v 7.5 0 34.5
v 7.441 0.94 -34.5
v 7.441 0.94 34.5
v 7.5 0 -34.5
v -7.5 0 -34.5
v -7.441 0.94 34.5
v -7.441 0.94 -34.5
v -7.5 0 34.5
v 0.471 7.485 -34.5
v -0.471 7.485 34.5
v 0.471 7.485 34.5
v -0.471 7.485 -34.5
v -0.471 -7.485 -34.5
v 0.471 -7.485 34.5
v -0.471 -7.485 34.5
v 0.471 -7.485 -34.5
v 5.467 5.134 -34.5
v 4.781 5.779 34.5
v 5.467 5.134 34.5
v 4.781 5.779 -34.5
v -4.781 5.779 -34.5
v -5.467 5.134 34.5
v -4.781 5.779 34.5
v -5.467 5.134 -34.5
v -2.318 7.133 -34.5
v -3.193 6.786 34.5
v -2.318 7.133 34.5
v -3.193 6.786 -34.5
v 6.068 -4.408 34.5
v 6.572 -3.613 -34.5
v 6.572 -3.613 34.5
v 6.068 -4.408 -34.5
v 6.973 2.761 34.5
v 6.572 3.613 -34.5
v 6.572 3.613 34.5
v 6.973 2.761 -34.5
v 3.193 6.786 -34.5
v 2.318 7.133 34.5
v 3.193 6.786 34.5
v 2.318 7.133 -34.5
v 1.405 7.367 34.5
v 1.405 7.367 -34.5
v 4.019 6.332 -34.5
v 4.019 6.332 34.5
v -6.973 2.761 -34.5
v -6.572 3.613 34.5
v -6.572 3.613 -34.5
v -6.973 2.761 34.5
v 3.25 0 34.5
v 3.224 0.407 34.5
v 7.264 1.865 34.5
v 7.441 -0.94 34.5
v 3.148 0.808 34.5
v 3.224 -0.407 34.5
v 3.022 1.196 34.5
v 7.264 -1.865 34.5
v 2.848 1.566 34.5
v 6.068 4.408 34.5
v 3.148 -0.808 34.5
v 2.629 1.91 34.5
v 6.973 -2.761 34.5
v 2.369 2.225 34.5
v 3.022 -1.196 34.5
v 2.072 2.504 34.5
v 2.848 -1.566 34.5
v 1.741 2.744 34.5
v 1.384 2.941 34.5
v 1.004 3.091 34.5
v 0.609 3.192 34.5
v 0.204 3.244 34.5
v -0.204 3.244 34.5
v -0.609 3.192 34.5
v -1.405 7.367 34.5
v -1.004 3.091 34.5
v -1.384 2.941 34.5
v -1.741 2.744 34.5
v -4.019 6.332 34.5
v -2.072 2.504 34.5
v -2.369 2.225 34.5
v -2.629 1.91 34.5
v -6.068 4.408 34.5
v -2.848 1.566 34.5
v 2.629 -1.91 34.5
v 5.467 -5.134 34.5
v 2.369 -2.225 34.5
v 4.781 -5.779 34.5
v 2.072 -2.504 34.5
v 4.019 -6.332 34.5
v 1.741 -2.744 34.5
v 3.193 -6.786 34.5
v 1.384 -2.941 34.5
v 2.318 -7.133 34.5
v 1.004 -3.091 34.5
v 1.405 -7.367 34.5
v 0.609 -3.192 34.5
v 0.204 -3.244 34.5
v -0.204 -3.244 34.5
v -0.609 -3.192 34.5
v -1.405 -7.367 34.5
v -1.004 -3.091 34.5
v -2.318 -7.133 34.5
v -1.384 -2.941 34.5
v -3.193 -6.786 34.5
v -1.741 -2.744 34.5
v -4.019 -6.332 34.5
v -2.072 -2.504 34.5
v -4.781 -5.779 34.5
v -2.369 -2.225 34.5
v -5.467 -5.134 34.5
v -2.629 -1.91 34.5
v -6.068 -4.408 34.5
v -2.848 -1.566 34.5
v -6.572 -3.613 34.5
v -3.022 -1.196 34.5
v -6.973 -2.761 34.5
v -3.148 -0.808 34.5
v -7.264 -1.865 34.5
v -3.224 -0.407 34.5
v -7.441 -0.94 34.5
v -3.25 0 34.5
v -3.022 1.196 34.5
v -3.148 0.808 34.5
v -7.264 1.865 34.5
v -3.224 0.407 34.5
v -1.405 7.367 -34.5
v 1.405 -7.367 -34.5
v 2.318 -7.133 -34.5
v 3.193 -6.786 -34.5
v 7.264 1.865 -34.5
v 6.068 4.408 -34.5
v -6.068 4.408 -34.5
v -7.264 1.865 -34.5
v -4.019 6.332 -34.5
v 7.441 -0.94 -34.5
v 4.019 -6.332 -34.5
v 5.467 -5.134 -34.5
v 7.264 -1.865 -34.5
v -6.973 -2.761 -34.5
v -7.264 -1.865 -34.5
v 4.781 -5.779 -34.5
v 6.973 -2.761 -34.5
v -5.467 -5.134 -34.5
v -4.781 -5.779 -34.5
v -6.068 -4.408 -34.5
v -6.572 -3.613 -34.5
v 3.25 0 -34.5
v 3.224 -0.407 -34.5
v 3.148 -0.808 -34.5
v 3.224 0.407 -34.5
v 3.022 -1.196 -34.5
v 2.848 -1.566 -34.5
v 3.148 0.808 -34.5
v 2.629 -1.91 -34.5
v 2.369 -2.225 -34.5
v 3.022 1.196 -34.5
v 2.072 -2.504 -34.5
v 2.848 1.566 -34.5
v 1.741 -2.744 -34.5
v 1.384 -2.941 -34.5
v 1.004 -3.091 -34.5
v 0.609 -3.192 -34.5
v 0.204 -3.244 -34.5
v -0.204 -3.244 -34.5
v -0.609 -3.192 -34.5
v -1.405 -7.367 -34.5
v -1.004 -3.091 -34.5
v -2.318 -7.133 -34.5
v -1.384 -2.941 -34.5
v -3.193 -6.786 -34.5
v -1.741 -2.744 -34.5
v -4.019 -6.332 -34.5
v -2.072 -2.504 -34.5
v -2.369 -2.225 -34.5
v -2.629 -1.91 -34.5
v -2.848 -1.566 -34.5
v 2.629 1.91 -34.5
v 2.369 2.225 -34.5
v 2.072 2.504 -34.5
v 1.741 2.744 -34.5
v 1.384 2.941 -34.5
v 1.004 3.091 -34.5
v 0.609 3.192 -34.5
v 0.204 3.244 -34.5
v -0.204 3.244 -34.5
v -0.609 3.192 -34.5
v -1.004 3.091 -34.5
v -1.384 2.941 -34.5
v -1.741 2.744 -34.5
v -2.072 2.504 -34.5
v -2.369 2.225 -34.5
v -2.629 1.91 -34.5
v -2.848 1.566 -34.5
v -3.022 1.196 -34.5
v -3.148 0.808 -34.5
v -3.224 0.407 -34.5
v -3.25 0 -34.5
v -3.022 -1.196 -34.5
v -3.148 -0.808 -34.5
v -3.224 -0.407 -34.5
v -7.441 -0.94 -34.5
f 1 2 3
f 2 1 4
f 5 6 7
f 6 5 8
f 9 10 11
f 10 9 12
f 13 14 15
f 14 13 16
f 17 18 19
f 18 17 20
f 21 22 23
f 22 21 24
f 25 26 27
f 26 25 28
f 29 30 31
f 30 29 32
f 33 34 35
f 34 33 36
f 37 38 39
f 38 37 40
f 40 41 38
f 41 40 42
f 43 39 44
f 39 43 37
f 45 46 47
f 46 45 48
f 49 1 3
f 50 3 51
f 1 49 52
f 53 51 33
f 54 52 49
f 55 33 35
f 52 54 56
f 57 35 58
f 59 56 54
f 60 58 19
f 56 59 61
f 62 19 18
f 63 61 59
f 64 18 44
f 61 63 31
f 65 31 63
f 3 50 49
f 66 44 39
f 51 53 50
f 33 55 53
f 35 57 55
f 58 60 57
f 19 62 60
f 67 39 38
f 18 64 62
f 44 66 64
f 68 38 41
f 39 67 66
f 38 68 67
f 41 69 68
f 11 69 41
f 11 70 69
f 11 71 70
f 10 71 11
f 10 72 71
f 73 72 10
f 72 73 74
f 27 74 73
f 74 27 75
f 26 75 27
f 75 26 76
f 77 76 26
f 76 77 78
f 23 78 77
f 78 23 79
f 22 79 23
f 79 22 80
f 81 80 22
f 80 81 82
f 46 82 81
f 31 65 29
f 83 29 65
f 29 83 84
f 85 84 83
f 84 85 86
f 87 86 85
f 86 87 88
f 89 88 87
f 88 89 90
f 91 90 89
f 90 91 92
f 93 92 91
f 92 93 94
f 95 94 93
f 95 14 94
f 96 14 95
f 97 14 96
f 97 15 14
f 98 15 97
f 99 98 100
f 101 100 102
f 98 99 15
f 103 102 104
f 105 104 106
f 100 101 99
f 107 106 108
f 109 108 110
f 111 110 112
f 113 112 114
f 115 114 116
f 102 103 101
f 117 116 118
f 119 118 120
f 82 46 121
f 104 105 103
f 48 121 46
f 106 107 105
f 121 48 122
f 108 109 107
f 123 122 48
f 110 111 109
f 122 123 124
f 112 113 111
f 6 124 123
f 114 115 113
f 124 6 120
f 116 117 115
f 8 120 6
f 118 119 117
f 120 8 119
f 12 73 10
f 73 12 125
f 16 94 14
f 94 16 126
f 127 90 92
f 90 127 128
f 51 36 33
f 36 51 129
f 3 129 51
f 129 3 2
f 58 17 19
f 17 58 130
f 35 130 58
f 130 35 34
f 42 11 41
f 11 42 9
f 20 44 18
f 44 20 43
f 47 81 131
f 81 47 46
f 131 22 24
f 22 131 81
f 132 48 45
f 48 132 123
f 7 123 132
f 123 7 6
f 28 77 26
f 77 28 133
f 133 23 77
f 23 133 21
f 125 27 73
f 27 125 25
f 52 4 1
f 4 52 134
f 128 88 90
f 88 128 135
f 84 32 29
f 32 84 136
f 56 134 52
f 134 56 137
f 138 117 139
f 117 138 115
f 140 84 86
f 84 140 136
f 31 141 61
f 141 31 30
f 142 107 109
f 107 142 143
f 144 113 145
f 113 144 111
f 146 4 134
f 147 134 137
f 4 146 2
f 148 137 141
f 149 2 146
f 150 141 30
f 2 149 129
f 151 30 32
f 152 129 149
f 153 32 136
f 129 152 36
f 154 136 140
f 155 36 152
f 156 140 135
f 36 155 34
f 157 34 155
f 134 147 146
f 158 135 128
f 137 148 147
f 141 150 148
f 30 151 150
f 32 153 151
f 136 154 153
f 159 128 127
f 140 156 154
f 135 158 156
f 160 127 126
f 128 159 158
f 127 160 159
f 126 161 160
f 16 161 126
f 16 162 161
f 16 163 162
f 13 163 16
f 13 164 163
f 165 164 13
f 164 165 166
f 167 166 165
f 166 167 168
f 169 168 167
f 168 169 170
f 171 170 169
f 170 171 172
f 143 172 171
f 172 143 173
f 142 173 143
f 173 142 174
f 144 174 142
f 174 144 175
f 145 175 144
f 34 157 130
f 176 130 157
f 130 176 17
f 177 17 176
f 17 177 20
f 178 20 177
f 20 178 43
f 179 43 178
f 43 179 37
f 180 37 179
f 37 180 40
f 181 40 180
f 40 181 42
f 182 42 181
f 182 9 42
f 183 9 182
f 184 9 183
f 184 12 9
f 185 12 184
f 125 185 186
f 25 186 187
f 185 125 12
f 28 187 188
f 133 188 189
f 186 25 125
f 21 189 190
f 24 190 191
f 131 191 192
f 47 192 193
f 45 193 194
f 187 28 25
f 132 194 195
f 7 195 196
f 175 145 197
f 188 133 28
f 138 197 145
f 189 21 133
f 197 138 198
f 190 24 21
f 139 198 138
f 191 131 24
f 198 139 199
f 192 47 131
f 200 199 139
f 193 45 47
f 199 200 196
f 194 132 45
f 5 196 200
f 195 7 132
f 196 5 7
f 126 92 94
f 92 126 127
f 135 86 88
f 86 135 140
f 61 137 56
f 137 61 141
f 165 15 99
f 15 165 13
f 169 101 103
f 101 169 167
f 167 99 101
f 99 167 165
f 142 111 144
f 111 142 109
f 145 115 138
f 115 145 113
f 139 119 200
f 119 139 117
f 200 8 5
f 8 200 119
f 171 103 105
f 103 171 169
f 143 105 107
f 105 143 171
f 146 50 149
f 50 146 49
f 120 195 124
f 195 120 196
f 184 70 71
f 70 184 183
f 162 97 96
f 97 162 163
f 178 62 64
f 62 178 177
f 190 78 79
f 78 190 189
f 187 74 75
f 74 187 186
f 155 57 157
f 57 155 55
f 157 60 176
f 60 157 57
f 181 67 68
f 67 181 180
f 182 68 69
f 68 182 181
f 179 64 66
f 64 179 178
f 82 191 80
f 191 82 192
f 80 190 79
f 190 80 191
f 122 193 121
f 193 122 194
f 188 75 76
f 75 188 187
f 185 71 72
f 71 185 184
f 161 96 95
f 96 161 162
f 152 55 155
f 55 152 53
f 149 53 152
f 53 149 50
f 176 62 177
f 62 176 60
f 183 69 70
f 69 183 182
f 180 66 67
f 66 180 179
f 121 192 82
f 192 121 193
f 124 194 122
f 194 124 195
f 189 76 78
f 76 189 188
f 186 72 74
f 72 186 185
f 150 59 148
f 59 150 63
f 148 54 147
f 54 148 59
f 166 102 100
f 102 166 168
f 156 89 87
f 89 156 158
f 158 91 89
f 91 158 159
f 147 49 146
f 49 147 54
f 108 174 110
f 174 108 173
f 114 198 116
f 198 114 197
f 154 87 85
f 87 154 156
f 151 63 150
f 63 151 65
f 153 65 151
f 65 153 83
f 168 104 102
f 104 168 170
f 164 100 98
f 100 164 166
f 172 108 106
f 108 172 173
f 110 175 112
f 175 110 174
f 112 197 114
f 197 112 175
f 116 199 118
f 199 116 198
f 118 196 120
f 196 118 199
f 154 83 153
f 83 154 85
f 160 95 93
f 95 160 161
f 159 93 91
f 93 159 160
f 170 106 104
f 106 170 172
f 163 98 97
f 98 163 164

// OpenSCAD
$fn = 50;


difference() {
	union() {
		translate(v = [0, 0, -34.5000000000]) {
			cylinder(h = 69, r = 7.5000000000);
		}
	}
	union() {
		translate(v = [0, 0, -100.0000000000]) {
			cylinder(h = 200, r = 3.2500000000);
		}
	}
}
